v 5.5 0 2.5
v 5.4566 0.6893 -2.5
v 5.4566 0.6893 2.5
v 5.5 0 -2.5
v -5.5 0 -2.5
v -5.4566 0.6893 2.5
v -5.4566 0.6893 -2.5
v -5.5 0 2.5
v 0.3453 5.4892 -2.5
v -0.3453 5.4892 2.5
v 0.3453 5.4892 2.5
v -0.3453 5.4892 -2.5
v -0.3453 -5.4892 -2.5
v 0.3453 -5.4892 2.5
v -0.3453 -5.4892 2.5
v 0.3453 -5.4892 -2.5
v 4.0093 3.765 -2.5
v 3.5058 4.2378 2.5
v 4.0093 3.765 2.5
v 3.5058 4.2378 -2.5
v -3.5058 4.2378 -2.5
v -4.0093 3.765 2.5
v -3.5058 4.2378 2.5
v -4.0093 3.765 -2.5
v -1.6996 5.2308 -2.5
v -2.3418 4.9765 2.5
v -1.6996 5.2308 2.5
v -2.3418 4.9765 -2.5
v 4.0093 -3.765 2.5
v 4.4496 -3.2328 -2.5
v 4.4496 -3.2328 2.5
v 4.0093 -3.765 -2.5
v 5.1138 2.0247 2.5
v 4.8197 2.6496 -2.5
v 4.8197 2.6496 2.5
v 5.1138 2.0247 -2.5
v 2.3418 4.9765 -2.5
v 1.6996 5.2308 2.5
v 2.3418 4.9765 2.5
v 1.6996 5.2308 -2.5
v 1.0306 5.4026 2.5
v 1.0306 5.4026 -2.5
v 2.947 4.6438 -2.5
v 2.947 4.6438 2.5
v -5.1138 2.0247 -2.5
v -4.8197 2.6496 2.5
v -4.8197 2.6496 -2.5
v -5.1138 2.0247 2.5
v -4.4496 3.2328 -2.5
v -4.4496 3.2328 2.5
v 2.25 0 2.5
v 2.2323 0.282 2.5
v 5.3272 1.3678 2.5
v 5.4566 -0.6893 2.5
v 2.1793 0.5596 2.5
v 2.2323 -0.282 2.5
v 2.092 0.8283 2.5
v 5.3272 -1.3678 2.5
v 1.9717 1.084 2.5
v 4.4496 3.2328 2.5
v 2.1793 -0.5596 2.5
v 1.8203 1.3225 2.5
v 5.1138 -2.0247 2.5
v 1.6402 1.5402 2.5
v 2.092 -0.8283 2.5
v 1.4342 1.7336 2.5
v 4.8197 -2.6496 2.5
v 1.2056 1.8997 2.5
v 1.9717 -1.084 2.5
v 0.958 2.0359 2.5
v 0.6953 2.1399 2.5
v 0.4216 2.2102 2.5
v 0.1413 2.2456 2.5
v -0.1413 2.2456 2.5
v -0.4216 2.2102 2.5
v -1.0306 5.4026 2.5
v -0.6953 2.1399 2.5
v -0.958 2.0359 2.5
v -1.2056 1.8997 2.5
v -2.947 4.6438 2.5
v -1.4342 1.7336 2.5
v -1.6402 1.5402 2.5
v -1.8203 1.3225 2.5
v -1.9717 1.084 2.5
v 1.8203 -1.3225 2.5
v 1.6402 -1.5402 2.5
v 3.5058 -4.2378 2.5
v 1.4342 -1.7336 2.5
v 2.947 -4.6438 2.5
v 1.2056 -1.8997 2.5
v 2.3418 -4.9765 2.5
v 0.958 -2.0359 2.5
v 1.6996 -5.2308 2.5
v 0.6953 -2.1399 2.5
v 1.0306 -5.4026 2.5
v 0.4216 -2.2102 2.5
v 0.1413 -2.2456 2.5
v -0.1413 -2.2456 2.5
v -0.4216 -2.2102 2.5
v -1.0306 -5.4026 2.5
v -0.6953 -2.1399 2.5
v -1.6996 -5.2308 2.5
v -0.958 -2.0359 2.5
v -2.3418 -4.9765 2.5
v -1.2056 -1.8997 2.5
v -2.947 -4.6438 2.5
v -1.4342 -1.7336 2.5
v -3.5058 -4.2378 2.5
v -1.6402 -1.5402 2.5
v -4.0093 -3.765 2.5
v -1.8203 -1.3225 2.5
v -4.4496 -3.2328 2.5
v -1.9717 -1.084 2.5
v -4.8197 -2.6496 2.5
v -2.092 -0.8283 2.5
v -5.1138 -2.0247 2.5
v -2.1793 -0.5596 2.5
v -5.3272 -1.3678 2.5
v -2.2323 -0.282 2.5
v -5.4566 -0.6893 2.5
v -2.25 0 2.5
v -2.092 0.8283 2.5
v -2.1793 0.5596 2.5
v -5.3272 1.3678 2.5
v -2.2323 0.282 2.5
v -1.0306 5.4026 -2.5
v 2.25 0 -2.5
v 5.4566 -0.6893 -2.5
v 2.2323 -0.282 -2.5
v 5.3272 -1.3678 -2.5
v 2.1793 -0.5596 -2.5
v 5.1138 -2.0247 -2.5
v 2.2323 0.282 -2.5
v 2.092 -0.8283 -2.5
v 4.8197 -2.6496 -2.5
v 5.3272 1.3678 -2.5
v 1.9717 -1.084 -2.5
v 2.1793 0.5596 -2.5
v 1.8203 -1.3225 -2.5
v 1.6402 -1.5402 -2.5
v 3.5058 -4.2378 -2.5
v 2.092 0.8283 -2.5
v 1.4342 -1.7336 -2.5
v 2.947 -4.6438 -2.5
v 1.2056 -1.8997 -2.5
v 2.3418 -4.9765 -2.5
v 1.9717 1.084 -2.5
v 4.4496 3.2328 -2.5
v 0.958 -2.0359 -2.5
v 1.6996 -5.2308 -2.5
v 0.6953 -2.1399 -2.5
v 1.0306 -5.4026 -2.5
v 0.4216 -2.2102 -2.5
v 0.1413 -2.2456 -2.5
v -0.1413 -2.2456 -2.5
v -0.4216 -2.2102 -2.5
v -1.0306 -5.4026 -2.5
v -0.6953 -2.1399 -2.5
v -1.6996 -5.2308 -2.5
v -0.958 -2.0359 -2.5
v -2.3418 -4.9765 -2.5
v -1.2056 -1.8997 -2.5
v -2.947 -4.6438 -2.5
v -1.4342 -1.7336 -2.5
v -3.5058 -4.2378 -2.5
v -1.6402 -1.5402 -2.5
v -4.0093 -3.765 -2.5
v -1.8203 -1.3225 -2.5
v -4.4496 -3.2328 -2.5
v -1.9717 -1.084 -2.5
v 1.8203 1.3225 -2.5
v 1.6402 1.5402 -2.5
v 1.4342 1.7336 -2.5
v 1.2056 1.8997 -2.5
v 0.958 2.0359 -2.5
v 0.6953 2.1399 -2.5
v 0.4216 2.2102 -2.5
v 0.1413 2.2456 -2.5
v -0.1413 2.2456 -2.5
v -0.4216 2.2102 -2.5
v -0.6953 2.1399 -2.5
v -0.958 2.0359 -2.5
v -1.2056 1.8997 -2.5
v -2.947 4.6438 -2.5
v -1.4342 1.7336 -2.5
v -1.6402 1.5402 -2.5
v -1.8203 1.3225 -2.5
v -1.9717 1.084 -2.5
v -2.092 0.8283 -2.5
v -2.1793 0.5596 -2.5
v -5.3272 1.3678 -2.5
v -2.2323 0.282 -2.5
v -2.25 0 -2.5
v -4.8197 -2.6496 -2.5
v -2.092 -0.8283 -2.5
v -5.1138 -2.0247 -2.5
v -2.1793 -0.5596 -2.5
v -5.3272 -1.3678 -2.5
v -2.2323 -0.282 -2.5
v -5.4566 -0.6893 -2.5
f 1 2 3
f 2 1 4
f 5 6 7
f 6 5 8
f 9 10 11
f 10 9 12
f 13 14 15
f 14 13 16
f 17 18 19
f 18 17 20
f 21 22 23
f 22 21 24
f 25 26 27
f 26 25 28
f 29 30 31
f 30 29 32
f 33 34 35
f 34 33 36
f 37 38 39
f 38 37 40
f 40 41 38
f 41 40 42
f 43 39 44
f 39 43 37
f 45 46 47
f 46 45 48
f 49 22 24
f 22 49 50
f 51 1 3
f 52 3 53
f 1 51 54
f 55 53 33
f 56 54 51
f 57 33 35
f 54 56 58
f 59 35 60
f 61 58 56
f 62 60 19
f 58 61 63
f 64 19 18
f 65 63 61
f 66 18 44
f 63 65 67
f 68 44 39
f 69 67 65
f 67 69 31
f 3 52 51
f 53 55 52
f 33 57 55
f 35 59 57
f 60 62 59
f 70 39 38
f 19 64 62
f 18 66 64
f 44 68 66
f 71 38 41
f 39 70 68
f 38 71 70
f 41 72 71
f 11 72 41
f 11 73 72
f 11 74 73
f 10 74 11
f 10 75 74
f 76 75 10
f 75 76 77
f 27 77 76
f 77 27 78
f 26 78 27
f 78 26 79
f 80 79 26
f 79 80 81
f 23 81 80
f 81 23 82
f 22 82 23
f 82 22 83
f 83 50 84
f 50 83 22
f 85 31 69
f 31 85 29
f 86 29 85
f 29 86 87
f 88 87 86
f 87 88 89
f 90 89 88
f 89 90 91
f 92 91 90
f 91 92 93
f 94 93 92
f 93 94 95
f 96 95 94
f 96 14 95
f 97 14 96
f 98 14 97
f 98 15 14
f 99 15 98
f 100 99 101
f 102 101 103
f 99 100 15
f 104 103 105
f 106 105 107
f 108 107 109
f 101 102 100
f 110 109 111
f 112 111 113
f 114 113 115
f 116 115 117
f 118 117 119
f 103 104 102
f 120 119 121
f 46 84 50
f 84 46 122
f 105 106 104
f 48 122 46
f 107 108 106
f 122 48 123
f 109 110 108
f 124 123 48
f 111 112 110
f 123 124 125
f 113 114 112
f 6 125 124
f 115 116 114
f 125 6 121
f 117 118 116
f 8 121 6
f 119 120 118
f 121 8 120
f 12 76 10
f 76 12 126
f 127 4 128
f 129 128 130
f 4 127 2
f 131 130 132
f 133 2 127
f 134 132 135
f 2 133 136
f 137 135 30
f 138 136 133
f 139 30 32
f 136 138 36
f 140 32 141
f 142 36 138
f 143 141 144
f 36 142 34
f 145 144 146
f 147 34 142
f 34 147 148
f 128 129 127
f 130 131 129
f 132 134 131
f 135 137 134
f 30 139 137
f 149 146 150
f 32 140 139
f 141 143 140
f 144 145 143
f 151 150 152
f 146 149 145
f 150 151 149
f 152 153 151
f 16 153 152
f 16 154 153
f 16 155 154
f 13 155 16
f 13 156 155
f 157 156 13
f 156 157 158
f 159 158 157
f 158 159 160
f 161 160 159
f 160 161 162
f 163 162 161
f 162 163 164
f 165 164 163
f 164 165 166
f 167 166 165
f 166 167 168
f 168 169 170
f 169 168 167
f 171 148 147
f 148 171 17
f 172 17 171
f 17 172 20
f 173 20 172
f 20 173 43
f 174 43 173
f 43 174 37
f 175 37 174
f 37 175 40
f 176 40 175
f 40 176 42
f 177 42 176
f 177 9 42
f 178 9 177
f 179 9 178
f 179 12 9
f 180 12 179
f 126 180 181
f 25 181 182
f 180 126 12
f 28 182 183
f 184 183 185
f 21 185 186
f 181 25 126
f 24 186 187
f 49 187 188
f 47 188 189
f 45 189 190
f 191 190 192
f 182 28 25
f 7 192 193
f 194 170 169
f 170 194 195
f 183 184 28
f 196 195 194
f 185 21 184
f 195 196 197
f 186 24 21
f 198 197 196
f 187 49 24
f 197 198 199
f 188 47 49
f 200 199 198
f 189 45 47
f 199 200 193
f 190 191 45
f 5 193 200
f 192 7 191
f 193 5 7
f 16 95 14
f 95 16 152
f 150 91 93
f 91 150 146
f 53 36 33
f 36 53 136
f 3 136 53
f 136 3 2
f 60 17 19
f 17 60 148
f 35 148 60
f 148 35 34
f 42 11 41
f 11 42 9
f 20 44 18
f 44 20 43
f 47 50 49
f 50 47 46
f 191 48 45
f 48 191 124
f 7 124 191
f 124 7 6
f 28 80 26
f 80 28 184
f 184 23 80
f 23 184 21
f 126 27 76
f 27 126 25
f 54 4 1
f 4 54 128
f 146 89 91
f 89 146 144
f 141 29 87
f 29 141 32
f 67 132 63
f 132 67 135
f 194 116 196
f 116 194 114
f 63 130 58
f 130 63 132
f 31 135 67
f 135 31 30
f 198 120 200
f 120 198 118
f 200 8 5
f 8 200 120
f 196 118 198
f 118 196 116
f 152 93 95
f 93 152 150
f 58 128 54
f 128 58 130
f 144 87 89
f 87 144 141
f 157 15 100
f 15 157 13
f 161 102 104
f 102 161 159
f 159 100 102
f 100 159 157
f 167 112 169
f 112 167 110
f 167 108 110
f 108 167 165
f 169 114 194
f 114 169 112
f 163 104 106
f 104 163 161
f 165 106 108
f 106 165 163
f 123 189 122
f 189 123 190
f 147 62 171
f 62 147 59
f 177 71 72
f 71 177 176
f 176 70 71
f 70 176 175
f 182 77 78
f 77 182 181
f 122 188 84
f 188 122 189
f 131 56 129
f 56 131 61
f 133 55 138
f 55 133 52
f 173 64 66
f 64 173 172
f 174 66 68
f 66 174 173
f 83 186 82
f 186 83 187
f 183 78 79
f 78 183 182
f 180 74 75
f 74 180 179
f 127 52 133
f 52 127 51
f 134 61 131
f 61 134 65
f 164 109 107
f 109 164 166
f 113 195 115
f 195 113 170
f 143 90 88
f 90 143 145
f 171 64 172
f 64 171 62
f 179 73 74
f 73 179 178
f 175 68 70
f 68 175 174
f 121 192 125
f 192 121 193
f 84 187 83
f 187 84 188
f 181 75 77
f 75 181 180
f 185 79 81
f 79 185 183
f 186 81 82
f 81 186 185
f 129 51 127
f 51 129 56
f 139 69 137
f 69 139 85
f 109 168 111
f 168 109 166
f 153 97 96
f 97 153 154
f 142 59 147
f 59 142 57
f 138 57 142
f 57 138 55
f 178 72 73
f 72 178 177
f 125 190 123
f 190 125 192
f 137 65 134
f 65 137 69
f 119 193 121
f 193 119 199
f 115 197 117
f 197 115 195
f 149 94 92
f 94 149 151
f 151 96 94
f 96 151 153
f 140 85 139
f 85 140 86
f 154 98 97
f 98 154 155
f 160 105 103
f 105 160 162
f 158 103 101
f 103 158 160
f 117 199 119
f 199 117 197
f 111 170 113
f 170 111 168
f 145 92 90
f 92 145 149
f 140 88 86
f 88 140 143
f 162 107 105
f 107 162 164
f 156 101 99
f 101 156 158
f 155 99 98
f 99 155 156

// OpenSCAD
$fn = 50;


difference() {
	union() {
		translate(v = [0, 0, -2.5000000000]) {
			cylinder(h = 5, r = 5.5000000000);
		}
	}
	union() {
		translate(v = [0, 0, -100.0000000000]) {
			cylinder(h = 200, r = 2.2500000000);
		}
	}
}
